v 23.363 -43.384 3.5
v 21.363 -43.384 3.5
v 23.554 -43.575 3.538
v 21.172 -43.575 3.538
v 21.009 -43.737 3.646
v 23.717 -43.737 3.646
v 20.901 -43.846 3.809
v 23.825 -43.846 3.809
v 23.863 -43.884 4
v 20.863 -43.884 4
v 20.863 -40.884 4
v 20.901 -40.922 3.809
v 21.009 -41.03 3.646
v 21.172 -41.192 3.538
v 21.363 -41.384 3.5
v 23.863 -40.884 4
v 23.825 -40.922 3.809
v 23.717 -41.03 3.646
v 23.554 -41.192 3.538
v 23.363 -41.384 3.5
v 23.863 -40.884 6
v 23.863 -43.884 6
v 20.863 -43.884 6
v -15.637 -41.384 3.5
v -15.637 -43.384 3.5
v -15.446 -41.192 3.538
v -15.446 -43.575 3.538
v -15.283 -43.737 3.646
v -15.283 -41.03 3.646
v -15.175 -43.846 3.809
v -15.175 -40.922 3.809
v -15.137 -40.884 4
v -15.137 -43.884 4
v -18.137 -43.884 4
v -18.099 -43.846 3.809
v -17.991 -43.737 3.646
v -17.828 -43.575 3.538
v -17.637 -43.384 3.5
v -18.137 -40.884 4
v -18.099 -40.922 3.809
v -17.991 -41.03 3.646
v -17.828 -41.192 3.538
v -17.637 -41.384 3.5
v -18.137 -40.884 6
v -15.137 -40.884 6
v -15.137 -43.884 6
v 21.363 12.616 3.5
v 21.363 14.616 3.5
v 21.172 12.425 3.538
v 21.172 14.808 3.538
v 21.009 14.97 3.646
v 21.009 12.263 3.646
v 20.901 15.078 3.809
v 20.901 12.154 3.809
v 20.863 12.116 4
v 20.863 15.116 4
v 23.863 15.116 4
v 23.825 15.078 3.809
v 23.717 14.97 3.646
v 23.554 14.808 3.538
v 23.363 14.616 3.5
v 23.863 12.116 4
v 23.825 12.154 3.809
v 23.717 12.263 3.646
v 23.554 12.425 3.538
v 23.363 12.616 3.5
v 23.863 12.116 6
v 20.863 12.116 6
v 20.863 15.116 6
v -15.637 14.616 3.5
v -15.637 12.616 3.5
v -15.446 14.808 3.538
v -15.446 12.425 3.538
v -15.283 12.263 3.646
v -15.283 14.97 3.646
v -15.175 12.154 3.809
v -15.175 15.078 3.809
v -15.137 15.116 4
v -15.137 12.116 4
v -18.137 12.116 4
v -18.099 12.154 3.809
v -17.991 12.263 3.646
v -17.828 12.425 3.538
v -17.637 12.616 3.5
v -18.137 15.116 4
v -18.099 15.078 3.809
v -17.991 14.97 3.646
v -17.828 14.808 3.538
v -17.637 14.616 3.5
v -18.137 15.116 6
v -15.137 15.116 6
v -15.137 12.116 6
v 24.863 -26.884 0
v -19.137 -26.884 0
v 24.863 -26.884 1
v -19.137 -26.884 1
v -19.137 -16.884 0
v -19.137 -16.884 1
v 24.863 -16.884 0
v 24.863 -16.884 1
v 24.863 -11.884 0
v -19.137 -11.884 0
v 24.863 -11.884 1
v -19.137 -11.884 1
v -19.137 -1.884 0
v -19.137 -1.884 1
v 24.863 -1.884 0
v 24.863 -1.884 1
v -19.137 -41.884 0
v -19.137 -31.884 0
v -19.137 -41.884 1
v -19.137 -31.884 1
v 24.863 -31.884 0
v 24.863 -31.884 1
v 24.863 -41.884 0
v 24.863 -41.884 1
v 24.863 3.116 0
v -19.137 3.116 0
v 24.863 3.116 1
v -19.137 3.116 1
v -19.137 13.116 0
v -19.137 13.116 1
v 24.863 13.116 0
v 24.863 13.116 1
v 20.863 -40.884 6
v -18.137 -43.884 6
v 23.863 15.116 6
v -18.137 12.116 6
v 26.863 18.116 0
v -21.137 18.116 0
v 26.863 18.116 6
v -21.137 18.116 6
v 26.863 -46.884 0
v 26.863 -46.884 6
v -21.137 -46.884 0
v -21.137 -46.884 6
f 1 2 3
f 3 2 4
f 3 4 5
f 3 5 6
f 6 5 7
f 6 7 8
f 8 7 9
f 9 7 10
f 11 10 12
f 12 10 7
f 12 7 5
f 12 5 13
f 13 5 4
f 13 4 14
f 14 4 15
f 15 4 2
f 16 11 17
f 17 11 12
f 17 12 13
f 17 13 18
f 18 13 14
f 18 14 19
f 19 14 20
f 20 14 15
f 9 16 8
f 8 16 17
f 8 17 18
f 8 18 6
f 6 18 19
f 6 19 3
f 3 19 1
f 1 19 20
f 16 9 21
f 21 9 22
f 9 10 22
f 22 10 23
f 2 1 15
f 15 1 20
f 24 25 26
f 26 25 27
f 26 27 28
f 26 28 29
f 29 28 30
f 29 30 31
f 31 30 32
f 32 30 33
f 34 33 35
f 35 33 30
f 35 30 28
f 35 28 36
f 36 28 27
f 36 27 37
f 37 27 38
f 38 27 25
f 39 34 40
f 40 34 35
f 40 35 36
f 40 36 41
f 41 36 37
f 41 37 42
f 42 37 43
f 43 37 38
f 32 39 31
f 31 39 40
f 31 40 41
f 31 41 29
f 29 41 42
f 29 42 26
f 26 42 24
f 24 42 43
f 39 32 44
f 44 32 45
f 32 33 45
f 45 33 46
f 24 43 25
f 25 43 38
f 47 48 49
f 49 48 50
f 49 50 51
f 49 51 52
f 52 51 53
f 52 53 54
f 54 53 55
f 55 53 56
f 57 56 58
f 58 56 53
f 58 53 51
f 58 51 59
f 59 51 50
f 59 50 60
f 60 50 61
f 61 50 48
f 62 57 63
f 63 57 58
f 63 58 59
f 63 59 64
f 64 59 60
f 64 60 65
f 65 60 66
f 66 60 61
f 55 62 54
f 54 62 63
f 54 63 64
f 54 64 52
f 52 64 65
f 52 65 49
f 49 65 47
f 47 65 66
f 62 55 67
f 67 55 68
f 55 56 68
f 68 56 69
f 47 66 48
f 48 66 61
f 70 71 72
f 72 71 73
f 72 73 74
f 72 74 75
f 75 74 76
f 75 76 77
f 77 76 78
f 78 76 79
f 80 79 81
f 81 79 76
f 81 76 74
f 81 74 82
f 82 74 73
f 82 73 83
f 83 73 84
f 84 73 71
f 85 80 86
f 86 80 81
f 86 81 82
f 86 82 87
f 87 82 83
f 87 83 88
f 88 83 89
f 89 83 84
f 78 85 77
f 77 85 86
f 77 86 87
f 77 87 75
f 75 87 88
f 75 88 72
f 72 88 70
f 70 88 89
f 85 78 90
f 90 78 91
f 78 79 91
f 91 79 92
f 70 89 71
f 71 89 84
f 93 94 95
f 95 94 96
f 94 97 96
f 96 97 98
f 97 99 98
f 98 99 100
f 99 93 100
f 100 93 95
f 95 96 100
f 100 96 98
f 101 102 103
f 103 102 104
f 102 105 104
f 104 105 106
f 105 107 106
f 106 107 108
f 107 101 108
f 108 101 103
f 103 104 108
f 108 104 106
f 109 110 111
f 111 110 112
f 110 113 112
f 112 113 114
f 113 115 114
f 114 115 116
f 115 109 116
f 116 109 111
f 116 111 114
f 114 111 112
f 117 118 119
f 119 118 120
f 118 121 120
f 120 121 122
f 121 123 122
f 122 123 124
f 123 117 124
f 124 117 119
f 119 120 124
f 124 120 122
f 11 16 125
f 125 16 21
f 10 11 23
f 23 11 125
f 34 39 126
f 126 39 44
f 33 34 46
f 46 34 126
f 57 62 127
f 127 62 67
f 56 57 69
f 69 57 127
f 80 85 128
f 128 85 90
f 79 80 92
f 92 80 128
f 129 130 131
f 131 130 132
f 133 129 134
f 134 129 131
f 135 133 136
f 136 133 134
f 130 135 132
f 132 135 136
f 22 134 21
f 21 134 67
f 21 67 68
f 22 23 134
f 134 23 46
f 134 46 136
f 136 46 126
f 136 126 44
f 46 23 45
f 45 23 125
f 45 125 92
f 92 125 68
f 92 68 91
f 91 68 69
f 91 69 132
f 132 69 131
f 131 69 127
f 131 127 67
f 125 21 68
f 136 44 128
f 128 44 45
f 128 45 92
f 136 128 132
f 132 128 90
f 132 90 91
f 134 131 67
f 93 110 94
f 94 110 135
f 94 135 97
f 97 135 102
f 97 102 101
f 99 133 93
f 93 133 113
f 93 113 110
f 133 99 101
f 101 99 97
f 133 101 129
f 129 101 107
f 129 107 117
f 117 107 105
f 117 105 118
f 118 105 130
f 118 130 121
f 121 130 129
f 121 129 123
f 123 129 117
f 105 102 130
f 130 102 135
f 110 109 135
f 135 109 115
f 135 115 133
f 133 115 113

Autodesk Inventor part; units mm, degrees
ref_plane "YZ Plane" through (0, 0, 0) normal (1, 0, 0) x (0, 1, 0)
ref_plane "XZ Plane" through (0, 0, 0) normal (0, 1, 0) x (-1, 0, 0)
ref_plane "XY Plane" through (0, 0, 0) normal (0, 0, 1) x (1, 0, 0)
sketch "Esquisse1" plane through (0, 0, 0) normal (0, 0, 1) x (1, 0, 0)
  line L0 (-21.137, 18.1163) -> (26.863, 18.1163)
  line L1 (26.863, 18.1163) -> (26.863, -46.8837)
  line L2 (26.863, -46.8837) -> (-21.137, -46.8837)
  line L3 (-21.137, -46.8837) -> (-21.137, 18.1163)
  point P0 (0, 0)
  dimension "d0" = 48
  dimension "d1" = 65
extrude "Extrusion1" add sketch "Esquisse1" along normal blind 6
sketch "Esquisse2" plane through (0, 0, 6) normal (0, 0, 1) x (1, 0, 0)
  line L0 (-18.137, -40.8837) -> (-15.137, -40.8837)
  line L1 (-15.137, -40.8837) -> (-15.137, -43.8837)
  line L2 (-15.137, -43.8837) -> (-18.137, -43.8837)
  line L3 (-18.137, -43.8837) -> (-18.137, -40.8837)
  line L4 (20.863, -40.8837) -> (23.863, -40.8837)
  line L5 (23.863, -40.8837) -> (23.863, -43.8837)
  line L6 (23.863, -43.8837) -> (20.863, -43.8837)
  line L7 (20.863, -43.8837) -> (20.863, -40.8837)
  line L8 (23.863, 12.1163) -> (20.863, 12.1163)
  line L9 (20.863, 12.1163) -> (20.863, 15.1163)
  line L10 (20.863, 15.1163) -> (23.863, 15.1163)
  line L11 (23.863, 15.1163) -> (23.863, 12.1163)
  line L12 (-15.137, 12.1163) -> (-18.137, 12.1163)
  line L13 (-18.137, 12.1163) -> (-18.137, 15.1163)
  line L14 (-18.137, 15.1163) -> (-15.137, 15.1163)
  line L15 (-15.137, 15.1163) -> (-15.137, 12.1163)
  line L16 (26.863, 18.1163) -> (-21.137, 18.1163) projected
  line L17 (-21.137, 18.1163) -> (-21.137, -46.8837) projected
  line L18 (26.863, -46.8837) -> (26.863, 18.1163) projected
  line L19 (-21.137, -46.8837) -> (26.863, -46.8837) projected
  point P0 (0, 0)
  dimension "d4" = 3
  dimension "d5" = 3
  dimension "d6" = 3
  dimension "d7" = 3
  dimension "d8" = 3
  dimension "d9" = 3
  dimension "d10" = 3
  dimension "d11" = 3
  dimension "d12" = 3
  dimension "d13" = 3
  dimension "d14" = 3
  dimension "d15" = 3
  dimension "d16" = 3
  dimension "d17" = 3
  dimension "d18" = 3
extrude "Extrusion2" cut sketch "Esquisse2" against normal blind 2.5 contours L0 L1 L2 L3 | L4 L5 L6 L7 | L8 L9 L10 L11 | L12 L13 L14 L15
sketch "Esquisse4" plane through (0, 0, 0) normal (0, 0, -1) x (-1, 0, 0)
  line L0 (-24.863, -1.8837) -> (19.137, -1.8837)
  line L1 (19.137, -1.8837) -> (19.137, -11.8837)
  line L2 (19.137, -11.8837) -> (-24.863, -11.8837)
  line L3 (-24.863, -11.8837) -> (-24.863, -1.8837)
  line L4 (-24.863, -16.8837) -> (19.137, -16.8837)
  line L5 (19.137, -16.8837) -> (19.137, -26.8837)
  line L6 (19.137, -26.8837) -> (-24.863, -26.8837)
  line L7 (-24.863, -26.8837) -> (-24.863, -16.8837)
  line L8 (-24.863, -31.8837) -> (19.137, -31.8837)
  line L9 (19.137, -31.8837) -> (19.137, -41.8837)
  line L10 (19.137, -41.8837) -> (-24.863, -41.8837)
  line L11 (-24.863, -41.8837) -> (-24.863, -31.8837)
  line L12 (-26.863, -46.8837) -> (-26.863, 18.1163) projected
  line L13 (21.137, 18.1163) -> (21.137, -46.8837) projected
  line L14 (-24.863, 13.1163) -> (19.137, 13.1163)
  line L15 (19.137, 13.1163) -> (19.137, 3.1163)
  line L16 (19.137, 3.1163) -> (-24.863, 3.1163)
  line L17 (-24.863, 3.1163) -> (-24.863, 13.1163)
  point P0 (0, 0)
  point P1 (-20.863, 12.1163)
  dimension "d39" = 10
  dimension "d40" = 5
  dimension "d41" = 10
  dimension "d42" = 5
  dimension "d43" = 10
  dimension "d44" = 44
  dimension "d45" = 2
  dimension "d46" = 44
  dimension "d47" = 2
  dimension "d48" = 44
  dimension "d49" = 2
  dimension "d52" = 5
  dimension "d53" = 10
  dimension "d54" = 2
  dimension "d57" = 44
extrude "Extrusion4" cut sketch "Esquisse4" against normal blind 1
fillet "Congé2" radius 0.5 16 edges at (-16.637, 12.1163, 3.5) (-15.137, 13.6163, 3.5) (-16.637, 15.1163, 3.5) (-18.137, 13.6163, 3.5) (22.363, 15.1163, 3.5) (20.863, 13.6163, 3.5) (22.363, 12.1163, 3.5) (23.863, 13.6163, 3.5) (-16.637, -43.8837, 3.5) (-15.137, -42.3837, 3.5) (-18.137, -42.3837, 3.5) (-16.637, -40.8837, 3.5) (20.863, -42.3837, 3.5) (22.363, -40.8837, 3.5) (22.363, -43.8837, 3.5) (23.863, -42.3837, 3.5)
properties part number "pièce_mobile_station"
